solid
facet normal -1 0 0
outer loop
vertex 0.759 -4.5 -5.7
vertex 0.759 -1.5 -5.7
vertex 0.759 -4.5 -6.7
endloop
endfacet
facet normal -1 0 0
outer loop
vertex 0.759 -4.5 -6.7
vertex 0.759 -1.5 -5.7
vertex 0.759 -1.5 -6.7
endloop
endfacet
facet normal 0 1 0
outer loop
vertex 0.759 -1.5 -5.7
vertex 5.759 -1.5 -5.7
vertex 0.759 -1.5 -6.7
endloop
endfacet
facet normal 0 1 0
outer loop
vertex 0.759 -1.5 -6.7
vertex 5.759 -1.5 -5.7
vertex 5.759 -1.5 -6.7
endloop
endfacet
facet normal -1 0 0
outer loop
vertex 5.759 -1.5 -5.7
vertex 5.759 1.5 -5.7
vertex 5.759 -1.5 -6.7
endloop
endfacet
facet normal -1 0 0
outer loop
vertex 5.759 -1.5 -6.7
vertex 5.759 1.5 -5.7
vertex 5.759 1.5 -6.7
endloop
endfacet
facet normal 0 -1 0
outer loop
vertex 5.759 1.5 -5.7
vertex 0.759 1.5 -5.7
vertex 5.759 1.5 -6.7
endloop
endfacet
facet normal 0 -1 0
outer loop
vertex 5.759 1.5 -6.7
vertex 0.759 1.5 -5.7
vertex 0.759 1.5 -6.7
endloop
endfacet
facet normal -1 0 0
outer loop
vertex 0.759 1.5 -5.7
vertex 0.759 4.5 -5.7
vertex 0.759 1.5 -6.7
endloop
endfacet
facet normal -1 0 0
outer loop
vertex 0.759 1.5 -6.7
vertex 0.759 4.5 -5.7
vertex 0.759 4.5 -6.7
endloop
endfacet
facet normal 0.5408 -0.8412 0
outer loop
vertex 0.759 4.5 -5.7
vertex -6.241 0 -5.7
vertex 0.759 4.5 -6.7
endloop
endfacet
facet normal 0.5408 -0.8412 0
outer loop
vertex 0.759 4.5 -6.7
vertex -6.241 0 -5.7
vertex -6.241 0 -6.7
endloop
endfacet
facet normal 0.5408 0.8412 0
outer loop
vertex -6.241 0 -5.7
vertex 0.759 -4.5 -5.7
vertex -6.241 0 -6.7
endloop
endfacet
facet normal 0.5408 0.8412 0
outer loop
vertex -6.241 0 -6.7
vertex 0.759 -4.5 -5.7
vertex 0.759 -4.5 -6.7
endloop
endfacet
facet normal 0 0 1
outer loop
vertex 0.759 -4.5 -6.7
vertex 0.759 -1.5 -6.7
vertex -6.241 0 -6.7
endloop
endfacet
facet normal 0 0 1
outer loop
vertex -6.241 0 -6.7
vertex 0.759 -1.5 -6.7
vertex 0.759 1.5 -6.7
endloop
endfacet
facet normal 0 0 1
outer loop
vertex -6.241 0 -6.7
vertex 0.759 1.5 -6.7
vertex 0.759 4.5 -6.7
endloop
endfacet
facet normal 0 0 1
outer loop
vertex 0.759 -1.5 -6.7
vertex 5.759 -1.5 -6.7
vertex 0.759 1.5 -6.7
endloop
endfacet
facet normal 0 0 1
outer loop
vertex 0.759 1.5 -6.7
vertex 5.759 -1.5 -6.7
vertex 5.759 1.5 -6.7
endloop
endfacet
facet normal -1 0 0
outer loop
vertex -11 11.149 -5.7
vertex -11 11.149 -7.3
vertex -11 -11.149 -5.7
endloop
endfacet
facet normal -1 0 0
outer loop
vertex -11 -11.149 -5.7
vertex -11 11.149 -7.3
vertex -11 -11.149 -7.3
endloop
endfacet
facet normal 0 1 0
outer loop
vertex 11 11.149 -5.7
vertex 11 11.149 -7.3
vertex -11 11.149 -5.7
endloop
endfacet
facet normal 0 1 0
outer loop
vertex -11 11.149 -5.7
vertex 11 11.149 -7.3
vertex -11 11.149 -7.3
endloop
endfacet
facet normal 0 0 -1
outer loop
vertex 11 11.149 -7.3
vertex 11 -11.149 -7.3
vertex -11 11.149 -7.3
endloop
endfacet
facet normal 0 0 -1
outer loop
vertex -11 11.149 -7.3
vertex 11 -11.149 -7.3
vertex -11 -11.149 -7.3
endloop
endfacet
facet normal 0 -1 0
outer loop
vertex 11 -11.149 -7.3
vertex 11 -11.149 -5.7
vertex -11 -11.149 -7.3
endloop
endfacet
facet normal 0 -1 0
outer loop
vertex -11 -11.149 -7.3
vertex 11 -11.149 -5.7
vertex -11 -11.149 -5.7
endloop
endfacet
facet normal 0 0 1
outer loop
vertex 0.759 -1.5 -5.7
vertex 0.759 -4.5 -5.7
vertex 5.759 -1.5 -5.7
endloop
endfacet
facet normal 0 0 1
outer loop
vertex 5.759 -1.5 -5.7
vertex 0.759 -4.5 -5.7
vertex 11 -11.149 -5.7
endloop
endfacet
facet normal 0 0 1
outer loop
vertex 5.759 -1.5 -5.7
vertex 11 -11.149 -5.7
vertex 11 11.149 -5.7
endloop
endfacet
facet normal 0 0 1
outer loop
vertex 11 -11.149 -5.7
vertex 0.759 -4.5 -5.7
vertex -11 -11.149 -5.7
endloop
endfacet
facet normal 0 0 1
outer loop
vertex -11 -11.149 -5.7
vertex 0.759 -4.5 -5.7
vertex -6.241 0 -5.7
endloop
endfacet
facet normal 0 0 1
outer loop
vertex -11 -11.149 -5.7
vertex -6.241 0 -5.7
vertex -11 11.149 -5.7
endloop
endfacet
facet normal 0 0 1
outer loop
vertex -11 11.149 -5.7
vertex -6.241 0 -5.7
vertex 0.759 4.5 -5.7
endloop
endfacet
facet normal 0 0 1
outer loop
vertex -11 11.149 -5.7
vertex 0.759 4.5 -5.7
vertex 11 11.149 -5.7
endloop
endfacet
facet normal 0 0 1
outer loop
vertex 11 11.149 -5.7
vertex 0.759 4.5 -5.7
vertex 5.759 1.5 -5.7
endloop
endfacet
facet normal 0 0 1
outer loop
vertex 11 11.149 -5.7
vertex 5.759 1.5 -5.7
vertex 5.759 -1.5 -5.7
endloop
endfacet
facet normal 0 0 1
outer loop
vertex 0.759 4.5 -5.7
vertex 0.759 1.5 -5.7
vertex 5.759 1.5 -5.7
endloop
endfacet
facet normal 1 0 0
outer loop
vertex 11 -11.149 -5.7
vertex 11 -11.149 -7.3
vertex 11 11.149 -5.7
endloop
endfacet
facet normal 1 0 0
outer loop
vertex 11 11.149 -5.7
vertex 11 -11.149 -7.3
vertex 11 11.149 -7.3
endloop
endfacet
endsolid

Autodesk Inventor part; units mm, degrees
ref_plane "YZ Plane" through (0, 0, 0) normal (1, 0, 0) x (0, 1, 0)
ref_plane "XZ Plane" through (0, 0, 0) normal (0, 1, 0) x (-1, 0, 0)
ref_plane "XY Plane" through (0, 0, 0) normal (0, 0, 1) x (1, 0, 0)
sketch "Sketch1" plane through (0, 0, 0) normal (1, 0, 0) x (0, 1, 0)
  line L0 (11.1495, -7.3) -> (-11.1495, -7.3)
  line L1 (-11.1495, -7.3) -> (-11.1495, -5.7)
  line L2 (-11.1495, -5.7) -> (11.1495, -5.7)
  line L3 (11.1495, -5.7) -> (11.1495, -7.3)
  line L4 (11.1495, -7.3) -> (-11.1495, -5.7) construction
  line L5 (-11.1495, -7.3) -> (11.1495, -5.7) construction
  point P0 (0, 0)
  point P1 (0, -6.5)
  dimension "d1" = 22.299
  dimension "d2" = 1.6
extrude "Extrusion1" add sketch "Sketch1" along normal mid plane 22
sketch "Sketch2" plane through (-11, -11.1495, -5.7) normal (0, 0, 1) x (1, 0, 0)
  line L0 (11.7587, 9.6495) -> (16.7587, 9.6495)
  line L1 (16.7587, 9.6495) -> (16.7587, 12.6495)
  line L2 (16.7587, 12.6495) -> (11.7587, 12.6495)
  line L3 (11.7587, 15.6495) -> (11.7587, 6.6495)
  line L4 (11.7587, 11.1495) -> (4.7587, 11.1495) construction
  line L5 (4.7587, 11.1495) -> (11.7587, 6.6495)
  line L6 (4.7587, 11.1495) -> (11.7587, 15.6495)
  line L7 (16.7587, 11.1495) -> (18.5587, 11.1495) construction
  line L8 (0, 22.299) -> (0, 0) projected
  point P0 (11.7587, 11.1495)
  point P1 (11.7587, 12.6495)
  dimension "d6" = 3
  dimension "d9" = 9
  dimension "d10" = 7
  dimension "d11" = 5
  dimension "d14" = 5
extrude "Extrusion2" cut sketch "Sketch2" against normal blind 1
equation "\"d14\" = d11"
properties part number "Part2_3DPrint"
